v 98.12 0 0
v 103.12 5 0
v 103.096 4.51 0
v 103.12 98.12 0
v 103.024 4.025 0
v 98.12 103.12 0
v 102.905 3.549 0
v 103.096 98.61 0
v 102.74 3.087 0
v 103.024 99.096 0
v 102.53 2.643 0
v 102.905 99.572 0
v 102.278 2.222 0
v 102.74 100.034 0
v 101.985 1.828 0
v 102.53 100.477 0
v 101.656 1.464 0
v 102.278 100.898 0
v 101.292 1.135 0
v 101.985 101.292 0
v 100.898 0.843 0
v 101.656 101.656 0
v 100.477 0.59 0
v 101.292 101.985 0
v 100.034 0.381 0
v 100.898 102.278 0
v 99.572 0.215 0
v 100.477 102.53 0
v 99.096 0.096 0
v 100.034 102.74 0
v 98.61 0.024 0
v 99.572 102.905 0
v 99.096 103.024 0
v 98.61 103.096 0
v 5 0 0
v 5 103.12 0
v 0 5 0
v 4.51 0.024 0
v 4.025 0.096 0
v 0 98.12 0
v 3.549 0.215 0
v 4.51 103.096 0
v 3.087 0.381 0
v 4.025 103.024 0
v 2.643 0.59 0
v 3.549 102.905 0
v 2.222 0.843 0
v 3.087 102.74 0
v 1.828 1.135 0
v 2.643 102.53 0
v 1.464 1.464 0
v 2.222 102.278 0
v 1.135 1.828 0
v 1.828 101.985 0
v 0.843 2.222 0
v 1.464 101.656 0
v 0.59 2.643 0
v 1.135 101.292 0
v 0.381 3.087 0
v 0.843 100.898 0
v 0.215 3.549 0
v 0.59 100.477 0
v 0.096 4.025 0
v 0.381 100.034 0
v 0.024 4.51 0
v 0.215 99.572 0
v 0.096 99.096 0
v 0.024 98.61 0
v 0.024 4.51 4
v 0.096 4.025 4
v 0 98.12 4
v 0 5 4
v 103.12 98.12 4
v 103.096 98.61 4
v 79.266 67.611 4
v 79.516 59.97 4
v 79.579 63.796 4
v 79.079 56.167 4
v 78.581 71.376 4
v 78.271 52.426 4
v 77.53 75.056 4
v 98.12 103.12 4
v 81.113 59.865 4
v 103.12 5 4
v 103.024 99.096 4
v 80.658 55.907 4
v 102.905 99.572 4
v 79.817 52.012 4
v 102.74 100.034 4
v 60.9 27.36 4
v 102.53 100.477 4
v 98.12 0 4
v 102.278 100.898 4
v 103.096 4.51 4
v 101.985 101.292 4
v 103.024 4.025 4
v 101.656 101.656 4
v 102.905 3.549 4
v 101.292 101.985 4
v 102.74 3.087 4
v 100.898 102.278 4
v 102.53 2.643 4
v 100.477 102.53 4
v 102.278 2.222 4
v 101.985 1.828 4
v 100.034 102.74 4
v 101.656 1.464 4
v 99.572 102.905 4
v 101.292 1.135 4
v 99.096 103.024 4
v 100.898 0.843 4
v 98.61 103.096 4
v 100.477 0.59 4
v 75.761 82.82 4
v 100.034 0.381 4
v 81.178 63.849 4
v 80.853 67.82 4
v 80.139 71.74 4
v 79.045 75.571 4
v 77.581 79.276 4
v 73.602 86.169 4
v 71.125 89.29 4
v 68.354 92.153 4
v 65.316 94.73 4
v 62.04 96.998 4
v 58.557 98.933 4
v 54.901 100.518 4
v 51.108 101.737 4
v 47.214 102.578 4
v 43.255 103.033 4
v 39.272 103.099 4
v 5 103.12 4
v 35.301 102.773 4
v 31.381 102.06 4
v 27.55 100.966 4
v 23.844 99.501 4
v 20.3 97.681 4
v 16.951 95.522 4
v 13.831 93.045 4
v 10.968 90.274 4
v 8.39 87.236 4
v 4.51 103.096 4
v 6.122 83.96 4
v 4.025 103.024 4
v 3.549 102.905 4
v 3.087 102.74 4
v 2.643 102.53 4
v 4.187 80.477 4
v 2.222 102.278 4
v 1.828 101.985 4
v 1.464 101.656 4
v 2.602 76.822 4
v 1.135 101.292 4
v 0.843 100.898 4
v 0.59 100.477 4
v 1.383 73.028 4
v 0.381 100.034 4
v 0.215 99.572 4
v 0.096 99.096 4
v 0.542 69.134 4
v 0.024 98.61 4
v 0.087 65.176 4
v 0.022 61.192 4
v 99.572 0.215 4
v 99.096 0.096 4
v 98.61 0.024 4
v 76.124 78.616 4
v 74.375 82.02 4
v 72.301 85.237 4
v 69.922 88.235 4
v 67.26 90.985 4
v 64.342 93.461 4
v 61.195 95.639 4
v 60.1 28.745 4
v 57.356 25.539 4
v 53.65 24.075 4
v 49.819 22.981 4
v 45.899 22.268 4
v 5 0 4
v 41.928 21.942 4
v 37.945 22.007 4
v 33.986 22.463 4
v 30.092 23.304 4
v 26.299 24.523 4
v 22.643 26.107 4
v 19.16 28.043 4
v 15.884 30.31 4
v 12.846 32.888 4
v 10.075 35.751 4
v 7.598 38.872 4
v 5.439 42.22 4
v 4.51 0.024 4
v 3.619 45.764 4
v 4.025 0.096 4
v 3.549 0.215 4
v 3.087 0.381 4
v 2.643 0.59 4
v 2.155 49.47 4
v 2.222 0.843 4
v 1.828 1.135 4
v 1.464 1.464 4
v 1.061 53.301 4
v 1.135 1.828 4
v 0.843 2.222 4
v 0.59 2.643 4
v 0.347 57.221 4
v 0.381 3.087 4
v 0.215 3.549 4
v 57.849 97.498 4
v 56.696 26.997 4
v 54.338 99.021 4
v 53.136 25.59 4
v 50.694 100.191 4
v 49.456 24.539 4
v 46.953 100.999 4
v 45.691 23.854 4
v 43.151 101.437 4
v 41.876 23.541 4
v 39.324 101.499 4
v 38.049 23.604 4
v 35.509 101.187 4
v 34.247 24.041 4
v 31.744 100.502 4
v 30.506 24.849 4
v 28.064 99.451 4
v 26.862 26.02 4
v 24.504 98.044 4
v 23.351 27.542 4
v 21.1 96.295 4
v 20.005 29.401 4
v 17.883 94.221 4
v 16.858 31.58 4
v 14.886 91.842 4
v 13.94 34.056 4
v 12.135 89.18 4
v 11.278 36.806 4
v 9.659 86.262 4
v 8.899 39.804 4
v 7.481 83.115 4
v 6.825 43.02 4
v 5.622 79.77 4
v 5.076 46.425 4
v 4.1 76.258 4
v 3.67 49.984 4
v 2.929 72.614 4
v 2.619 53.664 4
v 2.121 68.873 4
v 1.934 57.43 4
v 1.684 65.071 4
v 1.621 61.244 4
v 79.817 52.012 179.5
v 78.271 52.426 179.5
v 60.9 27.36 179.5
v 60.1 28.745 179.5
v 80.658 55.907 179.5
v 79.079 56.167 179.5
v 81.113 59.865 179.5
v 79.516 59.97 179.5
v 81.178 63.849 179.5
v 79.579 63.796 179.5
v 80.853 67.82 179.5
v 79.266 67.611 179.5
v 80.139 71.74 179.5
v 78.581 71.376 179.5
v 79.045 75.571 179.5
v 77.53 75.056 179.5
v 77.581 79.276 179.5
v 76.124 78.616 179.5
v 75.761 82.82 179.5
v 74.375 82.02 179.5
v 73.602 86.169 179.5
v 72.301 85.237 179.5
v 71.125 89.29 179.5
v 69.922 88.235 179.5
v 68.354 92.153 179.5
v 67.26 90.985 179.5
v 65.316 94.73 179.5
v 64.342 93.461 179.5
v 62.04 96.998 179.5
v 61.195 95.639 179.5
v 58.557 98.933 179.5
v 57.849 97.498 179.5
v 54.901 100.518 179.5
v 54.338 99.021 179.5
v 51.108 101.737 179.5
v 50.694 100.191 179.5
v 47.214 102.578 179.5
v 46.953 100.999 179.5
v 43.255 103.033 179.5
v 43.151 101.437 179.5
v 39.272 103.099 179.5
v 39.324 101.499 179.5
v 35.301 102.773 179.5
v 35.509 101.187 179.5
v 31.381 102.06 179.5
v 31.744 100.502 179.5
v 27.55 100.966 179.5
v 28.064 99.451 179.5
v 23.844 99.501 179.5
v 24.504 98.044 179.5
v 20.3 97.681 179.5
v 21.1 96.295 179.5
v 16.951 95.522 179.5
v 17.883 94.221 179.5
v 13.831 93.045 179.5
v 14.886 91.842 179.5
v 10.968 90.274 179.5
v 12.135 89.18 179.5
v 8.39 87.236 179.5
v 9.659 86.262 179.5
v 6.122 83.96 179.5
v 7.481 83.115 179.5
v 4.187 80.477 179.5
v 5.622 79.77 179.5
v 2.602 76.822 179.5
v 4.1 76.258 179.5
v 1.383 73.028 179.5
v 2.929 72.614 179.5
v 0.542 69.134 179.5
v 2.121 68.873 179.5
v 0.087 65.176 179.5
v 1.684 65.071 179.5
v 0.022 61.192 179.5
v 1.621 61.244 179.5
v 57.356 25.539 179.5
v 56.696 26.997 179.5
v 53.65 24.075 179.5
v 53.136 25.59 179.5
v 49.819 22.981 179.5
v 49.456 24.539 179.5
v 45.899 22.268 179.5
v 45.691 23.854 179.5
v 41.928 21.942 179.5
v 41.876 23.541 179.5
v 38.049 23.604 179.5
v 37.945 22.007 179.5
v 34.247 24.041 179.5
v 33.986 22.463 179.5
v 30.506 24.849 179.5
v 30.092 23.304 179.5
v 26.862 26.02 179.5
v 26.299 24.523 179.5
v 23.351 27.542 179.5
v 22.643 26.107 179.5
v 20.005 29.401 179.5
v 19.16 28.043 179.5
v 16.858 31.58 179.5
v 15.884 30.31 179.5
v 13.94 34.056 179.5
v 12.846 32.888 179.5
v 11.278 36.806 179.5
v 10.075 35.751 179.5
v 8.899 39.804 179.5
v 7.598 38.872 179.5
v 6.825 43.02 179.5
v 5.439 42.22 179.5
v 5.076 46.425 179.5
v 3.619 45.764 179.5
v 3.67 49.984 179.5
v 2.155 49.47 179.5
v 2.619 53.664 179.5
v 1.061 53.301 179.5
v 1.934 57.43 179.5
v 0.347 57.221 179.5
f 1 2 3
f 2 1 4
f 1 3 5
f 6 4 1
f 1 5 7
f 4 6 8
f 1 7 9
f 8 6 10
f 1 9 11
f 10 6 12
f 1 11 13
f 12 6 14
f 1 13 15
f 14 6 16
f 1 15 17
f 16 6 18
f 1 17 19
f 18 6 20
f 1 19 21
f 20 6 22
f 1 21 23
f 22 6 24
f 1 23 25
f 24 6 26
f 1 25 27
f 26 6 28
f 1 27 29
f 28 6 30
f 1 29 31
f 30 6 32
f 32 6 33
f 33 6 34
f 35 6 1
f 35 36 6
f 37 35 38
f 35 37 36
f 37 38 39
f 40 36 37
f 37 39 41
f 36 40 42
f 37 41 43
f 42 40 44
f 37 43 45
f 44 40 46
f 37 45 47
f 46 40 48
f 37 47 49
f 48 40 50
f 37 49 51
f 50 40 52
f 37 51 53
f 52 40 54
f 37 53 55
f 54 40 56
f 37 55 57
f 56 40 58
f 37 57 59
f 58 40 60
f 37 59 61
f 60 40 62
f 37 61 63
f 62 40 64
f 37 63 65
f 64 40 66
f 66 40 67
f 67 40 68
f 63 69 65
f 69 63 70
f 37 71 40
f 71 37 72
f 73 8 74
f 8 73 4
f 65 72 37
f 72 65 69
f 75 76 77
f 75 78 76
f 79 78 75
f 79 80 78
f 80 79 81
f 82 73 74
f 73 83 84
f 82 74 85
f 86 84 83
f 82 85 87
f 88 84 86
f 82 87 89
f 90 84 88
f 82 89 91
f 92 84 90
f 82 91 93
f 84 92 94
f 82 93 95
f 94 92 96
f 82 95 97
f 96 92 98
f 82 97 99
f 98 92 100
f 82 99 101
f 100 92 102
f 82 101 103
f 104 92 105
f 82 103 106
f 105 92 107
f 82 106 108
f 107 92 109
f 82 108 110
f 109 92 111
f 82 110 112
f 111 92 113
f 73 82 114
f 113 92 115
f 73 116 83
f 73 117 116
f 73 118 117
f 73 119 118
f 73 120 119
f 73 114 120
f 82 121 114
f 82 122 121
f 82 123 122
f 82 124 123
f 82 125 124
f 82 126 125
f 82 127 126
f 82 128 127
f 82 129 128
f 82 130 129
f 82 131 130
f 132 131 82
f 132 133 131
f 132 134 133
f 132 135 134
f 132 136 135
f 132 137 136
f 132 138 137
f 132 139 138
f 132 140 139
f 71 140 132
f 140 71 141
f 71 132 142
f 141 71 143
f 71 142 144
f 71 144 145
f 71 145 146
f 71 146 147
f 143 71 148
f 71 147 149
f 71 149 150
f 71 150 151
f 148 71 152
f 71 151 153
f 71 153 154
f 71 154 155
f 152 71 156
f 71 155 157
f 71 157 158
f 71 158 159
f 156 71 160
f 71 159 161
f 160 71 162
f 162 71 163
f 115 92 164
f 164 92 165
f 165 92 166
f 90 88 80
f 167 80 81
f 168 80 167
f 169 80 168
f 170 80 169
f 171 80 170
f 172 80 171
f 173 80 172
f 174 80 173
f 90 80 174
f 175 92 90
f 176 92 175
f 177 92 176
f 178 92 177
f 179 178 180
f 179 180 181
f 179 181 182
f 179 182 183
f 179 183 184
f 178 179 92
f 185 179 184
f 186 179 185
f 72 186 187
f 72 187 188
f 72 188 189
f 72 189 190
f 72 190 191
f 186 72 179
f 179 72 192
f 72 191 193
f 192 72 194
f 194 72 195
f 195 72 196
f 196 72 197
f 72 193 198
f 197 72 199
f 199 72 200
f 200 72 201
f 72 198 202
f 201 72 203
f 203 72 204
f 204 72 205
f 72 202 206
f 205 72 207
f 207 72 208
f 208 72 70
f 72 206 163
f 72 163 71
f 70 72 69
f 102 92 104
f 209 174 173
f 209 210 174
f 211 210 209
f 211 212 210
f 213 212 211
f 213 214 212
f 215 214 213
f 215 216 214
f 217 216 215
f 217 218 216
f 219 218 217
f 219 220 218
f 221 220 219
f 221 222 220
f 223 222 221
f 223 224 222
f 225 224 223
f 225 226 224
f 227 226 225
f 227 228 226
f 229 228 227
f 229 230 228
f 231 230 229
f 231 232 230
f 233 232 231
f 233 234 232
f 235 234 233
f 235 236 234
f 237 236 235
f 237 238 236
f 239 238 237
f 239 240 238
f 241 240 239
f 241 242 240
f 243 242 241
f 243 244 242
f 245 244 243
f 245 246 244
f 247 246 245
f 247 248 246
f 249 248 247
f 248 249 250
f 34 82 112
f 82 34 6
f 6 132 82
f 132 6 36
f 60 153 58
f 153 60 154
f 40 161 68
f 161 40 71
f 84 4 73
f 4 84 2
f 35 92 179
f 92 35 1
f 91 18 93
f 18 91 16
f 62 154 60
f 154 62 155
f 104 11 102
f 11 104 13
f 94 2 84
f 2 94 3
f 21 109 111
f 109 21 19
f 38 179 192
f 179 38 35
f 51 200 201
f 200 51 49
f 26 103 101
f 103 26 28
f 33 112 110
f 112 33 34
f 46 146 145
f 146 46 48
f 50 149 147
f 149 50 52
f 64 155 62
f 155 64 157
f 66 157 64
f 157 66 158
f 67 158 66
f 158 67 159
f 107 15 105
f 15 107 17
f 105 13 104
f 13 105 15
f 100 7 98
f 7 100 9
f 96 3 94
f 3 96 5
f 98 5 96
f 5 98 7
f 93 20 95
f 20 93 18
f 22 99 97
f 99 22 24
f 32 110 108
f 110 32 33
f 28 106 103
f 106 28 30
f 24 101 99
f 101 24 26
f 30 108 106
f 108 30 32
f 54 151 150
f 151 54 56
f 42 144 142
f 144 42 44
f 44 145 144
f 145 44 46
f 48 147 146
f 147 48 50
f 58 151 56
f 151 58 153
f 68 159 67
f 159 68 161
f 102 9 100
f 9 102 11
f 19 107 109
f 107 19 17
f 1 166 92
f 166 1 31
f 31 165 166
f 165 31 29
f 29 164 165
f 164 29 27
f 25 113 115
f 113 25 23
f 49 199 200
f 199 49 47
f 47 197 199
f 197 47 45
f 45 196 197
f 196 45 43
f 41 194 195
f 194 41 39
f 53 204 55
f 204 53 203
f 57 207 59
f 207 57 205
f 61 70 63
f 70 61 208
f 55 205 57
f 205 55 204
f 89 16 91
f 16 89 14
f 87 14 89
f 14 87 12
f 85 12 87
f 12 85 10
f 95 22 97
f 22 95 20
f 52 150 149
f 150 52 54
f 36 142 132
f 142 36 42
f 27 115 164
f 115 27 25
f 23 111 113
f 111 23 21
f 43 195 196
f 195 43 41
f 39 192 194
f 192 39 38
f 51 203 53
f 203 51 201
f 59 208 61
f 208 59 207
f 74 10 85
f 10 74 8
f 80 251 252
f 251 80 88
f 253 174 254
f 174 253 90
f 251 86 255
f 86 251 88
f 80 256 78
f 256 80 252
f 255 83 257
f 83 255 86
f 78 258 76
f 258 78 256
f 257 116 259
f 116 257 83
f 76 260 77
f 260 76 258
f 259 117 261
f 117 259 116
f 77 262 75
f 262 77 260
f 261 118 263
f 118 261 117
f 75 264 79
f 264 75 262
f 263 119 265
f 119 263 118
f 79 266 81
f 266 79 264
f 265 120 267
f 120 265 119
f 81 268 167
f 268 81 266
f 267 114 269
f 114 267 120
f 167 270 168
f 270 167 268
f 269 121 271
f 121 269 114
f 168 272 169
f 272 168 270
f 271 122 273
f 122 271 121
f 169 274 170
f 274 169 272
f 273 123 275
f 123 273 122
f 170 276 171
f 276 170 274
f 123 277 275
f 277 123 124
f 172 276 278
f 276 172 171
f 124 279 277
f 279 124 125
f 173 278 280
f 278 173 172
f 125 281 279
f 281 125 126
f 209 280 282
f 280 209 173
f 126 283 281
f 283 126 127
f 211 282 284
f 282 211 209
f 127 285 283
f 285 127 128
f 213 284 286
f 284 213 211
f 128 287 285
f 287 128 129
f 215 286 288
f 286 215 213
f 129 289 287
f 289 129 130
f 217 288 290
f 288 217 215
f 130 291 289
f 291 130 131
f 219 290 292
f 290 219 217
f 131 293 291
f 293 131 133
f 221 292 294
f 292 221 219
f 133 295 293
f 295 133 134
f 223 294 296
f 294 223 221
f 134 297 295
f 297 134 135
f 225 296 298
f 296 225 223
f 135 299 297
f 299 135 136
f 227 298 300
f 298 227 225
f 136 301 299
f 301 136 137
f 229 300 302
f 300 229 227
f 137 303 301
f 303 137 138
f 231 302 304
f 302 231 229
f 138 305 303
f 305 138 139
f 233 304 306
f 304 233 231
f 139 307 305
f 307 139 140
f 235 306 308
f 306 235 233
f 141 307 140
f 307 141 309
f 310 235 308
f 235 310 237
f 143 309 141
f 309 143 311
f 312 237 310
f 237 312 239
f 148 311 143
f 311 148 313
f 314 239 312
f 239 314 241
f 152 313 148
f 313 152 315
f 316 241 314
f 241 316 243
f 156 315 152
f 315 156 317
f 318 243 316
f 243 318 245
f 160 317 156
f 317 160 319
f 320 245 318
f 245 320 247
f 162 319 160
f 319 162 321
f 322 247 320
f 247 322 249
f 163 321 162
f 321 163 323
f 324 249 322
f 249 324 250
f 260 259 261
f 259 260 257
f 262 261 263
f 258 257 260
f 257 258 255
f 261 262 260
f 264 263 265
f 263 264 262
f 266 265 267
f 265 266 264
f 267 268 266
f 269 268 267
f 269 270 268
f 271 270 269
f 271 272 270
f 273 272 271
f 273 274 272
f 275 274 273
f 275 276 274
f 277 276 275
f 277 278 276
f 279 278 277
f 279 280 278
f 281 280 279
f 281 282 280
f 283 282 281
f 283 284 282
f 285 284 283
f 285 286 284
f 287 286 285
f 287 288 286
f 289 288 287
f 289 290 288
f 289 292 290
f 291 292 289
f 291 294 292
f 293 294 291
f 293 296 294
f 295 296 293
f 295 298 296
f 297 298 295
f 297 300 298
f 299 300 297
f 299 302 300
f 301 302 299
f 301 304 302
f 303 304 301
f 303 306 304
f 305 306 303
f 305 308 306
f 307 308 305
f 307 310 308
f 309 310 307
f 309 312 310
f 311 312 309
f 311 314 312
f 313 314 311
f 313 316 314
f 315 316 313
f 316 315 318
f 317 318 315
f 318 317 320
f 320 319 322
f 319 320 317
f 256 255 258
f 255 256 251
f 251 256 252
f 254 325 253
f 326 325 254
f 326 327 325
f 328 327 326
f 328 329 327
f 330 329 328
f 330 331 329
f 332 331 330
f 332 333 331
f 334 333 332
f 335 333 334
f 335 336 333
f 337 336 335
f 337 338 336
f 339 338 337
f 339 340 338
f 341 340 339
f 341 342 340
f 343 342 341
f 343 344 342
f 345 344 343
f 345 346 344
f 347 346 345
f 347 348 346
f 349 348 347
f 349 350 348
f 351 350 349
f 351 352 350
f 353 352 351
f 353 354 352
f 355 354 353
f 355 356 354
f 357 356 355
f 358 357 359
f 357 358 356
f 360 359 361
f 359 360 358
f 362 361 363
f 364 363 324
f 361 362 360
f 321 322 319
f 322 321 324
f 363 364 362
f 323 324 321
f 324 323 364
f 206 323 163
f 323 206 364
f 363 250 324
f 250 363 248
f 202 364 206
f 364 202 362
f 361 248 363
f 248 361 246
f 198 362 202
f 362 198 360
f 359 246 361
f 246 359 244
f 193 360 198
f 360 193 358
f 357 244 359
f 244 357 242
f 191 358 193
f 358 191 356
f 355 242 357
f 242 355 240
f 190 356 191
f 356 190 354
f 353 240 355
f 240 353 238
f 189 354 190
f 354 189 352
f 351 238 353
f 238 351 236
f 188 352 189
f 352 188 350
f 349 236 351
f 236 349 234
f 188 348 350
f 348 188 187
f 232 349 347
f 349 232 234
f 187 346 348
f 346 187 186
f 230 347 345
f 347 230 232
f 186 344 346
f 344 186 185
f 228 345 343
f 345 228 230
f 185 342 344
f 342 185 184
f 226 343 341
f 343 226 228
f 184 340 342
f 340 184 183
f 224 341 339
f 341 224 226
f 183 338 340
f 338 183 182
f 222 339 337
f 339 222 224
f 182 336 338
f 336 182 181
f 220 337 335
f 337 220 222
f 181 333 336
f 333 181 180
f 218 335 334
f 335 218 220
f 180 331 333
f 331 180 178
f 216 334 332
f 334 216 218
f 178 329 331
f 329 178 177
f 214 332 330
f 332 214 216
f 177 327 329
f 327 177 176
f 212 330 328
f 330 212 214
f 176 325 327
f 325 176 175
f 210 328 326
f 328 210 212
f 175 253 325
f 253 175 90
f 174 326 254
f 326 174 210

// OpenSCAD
// file: ../../Various/SCAD/rounded_box.scad
/**
 * Small "library" for creating boxes with rounded edges.
 *
 * Hendrik Busch, 2017-18 (https://github.com/hmbusch)
 *
 */
 
/**
 * Creates a 2D-shape of a box with the given dimensions and rounded edges. 
 * Be sure to increase $fn for nicer edges.
 *
 * @param width
 *          the desired width of the box (default is 10mm)
 * @param depth
 *          the desired depth of the box (default is 10mm)
 * @param height
 *          the desired height of the box (default is 10mm)
 * @param edge_radius
 *          the radius of all the edges on the xy-plane (default is 2mm)
 */  
module box_with_round_edges_2d(width = 10, depth = 10, edge_radius = 2) {
    ed = edge_radius * 2;
    translate([edge_radius, edge_radius, 0]) hull() {
        circle(d = ed);
        translate([width - ed, 0, 0]) circle(d = ed);
        translate([0, depth - ed, 0]) circle(d = ed);
        translate([width - ed, depth - ed, 0]) circle(d = ed);    
    }
}
 
/**
 * Call to create a box with rounded edges (edges will be round on one plane only).
 * Be sure to increase $fn for nicer edges.
 * 
 * @param width
 *          the desired width of the box (default is 10mm)
 * @param depth
 *          the desired depth of the box (default is 10mm)
 * @param height
 *          the desired height of the box (default is 10mm)
 * @param edge_radius
 *          the radius of all the edges on the xy-plane (default is 2mm)
 *
 */
module box_with_round_edges_3d(width = 10, depth = 10, height = 10, edge_radius = 2) {
	linear_extrude(height = height) {
		box_with_round_edges_2d(width, depth, edge_radius);
	}
}

/**
 * Call to create a box with rounded edges (edges will be round on one plane only).
 * Be sure to increase $fn for nicer edges. This module has inputs that resemble
 * those of cube() so that it can act as a drop-in replacement.
 * 
 * @param dimensions
 *          3-value-array with x, y and z dimensions (default is 10x10x10mm).
 * @param edge_radius
 *          the radius of all the edges on the xy-plane (default is 2mm)
 *
 */
module box_with_round_edges_3d(dimensions = [10, 10, 10], edge_radius = 2) {
	linear_extrude(height = dimensions[2]) {
		box_with_round_edges_2d(dimensions[0], dimensions[1], edge_radius);
	}
}
// main file
use <../../Various/SCAD/rounded_box.scad>

/* [Measurements] */

// Diameter of the cups to stack
Cup_Diameter = 76; // [50:1:150]

// Height of the cups to stack
Cup_Height = 60;    // [40:1:100]

// Number of cups to stack
Stack_Size = 3;     // [1:1:10]

// Cup tower height scale ratio
Tower_Scale = 0.975; // [0.8:0.01:1]

// Longest diagonal the cup has (including the handle)
Cup_Diagonal = 107;      // [50:1:200]

// Angle of the cutout for the handle
Cutout_Angle = 45;    // [30:1:90]

// Desired wall strength
Wall_Strength = 1.6;    // [0.5:0.1:5]

// Additional slack between the cups and the wall
Wall_Slack = 1;   // [0:0.5:10]

// Thickness of the base
Base_Thickness = 4;

/* [Hidden] */

$fn = 64;
f = 0.01;
Tower_Diameter = Cup_Diameter + 2 * Wall_Slack + 2 * Wall_Strength;
Base_Width = Tower_Diameter + ((Cup_Diagonal - Cup_Diameter) / sqrt(2));

echo(Base_Width);
echo(Tower_Diameter);

module tower() {
    rotate([0, 0, -15])
        rotate_extrude(angle = 360 - Cutout_Angle)
            translate([Tower_Diameter/2 - Wall_Strength, 0, 0])
                square([Wall_Strength, Tower_Scale * Stack_Size * Cup_Height]);
}

module base() {
    box_with_round_edges_3d([Base_Width, Base_Width, Base_Thickness], 5);
}

base();
translate([Tower_Diameter/2, Base_Width - Tower_Diameter/2, Base_Thickness]) 
    tower();
